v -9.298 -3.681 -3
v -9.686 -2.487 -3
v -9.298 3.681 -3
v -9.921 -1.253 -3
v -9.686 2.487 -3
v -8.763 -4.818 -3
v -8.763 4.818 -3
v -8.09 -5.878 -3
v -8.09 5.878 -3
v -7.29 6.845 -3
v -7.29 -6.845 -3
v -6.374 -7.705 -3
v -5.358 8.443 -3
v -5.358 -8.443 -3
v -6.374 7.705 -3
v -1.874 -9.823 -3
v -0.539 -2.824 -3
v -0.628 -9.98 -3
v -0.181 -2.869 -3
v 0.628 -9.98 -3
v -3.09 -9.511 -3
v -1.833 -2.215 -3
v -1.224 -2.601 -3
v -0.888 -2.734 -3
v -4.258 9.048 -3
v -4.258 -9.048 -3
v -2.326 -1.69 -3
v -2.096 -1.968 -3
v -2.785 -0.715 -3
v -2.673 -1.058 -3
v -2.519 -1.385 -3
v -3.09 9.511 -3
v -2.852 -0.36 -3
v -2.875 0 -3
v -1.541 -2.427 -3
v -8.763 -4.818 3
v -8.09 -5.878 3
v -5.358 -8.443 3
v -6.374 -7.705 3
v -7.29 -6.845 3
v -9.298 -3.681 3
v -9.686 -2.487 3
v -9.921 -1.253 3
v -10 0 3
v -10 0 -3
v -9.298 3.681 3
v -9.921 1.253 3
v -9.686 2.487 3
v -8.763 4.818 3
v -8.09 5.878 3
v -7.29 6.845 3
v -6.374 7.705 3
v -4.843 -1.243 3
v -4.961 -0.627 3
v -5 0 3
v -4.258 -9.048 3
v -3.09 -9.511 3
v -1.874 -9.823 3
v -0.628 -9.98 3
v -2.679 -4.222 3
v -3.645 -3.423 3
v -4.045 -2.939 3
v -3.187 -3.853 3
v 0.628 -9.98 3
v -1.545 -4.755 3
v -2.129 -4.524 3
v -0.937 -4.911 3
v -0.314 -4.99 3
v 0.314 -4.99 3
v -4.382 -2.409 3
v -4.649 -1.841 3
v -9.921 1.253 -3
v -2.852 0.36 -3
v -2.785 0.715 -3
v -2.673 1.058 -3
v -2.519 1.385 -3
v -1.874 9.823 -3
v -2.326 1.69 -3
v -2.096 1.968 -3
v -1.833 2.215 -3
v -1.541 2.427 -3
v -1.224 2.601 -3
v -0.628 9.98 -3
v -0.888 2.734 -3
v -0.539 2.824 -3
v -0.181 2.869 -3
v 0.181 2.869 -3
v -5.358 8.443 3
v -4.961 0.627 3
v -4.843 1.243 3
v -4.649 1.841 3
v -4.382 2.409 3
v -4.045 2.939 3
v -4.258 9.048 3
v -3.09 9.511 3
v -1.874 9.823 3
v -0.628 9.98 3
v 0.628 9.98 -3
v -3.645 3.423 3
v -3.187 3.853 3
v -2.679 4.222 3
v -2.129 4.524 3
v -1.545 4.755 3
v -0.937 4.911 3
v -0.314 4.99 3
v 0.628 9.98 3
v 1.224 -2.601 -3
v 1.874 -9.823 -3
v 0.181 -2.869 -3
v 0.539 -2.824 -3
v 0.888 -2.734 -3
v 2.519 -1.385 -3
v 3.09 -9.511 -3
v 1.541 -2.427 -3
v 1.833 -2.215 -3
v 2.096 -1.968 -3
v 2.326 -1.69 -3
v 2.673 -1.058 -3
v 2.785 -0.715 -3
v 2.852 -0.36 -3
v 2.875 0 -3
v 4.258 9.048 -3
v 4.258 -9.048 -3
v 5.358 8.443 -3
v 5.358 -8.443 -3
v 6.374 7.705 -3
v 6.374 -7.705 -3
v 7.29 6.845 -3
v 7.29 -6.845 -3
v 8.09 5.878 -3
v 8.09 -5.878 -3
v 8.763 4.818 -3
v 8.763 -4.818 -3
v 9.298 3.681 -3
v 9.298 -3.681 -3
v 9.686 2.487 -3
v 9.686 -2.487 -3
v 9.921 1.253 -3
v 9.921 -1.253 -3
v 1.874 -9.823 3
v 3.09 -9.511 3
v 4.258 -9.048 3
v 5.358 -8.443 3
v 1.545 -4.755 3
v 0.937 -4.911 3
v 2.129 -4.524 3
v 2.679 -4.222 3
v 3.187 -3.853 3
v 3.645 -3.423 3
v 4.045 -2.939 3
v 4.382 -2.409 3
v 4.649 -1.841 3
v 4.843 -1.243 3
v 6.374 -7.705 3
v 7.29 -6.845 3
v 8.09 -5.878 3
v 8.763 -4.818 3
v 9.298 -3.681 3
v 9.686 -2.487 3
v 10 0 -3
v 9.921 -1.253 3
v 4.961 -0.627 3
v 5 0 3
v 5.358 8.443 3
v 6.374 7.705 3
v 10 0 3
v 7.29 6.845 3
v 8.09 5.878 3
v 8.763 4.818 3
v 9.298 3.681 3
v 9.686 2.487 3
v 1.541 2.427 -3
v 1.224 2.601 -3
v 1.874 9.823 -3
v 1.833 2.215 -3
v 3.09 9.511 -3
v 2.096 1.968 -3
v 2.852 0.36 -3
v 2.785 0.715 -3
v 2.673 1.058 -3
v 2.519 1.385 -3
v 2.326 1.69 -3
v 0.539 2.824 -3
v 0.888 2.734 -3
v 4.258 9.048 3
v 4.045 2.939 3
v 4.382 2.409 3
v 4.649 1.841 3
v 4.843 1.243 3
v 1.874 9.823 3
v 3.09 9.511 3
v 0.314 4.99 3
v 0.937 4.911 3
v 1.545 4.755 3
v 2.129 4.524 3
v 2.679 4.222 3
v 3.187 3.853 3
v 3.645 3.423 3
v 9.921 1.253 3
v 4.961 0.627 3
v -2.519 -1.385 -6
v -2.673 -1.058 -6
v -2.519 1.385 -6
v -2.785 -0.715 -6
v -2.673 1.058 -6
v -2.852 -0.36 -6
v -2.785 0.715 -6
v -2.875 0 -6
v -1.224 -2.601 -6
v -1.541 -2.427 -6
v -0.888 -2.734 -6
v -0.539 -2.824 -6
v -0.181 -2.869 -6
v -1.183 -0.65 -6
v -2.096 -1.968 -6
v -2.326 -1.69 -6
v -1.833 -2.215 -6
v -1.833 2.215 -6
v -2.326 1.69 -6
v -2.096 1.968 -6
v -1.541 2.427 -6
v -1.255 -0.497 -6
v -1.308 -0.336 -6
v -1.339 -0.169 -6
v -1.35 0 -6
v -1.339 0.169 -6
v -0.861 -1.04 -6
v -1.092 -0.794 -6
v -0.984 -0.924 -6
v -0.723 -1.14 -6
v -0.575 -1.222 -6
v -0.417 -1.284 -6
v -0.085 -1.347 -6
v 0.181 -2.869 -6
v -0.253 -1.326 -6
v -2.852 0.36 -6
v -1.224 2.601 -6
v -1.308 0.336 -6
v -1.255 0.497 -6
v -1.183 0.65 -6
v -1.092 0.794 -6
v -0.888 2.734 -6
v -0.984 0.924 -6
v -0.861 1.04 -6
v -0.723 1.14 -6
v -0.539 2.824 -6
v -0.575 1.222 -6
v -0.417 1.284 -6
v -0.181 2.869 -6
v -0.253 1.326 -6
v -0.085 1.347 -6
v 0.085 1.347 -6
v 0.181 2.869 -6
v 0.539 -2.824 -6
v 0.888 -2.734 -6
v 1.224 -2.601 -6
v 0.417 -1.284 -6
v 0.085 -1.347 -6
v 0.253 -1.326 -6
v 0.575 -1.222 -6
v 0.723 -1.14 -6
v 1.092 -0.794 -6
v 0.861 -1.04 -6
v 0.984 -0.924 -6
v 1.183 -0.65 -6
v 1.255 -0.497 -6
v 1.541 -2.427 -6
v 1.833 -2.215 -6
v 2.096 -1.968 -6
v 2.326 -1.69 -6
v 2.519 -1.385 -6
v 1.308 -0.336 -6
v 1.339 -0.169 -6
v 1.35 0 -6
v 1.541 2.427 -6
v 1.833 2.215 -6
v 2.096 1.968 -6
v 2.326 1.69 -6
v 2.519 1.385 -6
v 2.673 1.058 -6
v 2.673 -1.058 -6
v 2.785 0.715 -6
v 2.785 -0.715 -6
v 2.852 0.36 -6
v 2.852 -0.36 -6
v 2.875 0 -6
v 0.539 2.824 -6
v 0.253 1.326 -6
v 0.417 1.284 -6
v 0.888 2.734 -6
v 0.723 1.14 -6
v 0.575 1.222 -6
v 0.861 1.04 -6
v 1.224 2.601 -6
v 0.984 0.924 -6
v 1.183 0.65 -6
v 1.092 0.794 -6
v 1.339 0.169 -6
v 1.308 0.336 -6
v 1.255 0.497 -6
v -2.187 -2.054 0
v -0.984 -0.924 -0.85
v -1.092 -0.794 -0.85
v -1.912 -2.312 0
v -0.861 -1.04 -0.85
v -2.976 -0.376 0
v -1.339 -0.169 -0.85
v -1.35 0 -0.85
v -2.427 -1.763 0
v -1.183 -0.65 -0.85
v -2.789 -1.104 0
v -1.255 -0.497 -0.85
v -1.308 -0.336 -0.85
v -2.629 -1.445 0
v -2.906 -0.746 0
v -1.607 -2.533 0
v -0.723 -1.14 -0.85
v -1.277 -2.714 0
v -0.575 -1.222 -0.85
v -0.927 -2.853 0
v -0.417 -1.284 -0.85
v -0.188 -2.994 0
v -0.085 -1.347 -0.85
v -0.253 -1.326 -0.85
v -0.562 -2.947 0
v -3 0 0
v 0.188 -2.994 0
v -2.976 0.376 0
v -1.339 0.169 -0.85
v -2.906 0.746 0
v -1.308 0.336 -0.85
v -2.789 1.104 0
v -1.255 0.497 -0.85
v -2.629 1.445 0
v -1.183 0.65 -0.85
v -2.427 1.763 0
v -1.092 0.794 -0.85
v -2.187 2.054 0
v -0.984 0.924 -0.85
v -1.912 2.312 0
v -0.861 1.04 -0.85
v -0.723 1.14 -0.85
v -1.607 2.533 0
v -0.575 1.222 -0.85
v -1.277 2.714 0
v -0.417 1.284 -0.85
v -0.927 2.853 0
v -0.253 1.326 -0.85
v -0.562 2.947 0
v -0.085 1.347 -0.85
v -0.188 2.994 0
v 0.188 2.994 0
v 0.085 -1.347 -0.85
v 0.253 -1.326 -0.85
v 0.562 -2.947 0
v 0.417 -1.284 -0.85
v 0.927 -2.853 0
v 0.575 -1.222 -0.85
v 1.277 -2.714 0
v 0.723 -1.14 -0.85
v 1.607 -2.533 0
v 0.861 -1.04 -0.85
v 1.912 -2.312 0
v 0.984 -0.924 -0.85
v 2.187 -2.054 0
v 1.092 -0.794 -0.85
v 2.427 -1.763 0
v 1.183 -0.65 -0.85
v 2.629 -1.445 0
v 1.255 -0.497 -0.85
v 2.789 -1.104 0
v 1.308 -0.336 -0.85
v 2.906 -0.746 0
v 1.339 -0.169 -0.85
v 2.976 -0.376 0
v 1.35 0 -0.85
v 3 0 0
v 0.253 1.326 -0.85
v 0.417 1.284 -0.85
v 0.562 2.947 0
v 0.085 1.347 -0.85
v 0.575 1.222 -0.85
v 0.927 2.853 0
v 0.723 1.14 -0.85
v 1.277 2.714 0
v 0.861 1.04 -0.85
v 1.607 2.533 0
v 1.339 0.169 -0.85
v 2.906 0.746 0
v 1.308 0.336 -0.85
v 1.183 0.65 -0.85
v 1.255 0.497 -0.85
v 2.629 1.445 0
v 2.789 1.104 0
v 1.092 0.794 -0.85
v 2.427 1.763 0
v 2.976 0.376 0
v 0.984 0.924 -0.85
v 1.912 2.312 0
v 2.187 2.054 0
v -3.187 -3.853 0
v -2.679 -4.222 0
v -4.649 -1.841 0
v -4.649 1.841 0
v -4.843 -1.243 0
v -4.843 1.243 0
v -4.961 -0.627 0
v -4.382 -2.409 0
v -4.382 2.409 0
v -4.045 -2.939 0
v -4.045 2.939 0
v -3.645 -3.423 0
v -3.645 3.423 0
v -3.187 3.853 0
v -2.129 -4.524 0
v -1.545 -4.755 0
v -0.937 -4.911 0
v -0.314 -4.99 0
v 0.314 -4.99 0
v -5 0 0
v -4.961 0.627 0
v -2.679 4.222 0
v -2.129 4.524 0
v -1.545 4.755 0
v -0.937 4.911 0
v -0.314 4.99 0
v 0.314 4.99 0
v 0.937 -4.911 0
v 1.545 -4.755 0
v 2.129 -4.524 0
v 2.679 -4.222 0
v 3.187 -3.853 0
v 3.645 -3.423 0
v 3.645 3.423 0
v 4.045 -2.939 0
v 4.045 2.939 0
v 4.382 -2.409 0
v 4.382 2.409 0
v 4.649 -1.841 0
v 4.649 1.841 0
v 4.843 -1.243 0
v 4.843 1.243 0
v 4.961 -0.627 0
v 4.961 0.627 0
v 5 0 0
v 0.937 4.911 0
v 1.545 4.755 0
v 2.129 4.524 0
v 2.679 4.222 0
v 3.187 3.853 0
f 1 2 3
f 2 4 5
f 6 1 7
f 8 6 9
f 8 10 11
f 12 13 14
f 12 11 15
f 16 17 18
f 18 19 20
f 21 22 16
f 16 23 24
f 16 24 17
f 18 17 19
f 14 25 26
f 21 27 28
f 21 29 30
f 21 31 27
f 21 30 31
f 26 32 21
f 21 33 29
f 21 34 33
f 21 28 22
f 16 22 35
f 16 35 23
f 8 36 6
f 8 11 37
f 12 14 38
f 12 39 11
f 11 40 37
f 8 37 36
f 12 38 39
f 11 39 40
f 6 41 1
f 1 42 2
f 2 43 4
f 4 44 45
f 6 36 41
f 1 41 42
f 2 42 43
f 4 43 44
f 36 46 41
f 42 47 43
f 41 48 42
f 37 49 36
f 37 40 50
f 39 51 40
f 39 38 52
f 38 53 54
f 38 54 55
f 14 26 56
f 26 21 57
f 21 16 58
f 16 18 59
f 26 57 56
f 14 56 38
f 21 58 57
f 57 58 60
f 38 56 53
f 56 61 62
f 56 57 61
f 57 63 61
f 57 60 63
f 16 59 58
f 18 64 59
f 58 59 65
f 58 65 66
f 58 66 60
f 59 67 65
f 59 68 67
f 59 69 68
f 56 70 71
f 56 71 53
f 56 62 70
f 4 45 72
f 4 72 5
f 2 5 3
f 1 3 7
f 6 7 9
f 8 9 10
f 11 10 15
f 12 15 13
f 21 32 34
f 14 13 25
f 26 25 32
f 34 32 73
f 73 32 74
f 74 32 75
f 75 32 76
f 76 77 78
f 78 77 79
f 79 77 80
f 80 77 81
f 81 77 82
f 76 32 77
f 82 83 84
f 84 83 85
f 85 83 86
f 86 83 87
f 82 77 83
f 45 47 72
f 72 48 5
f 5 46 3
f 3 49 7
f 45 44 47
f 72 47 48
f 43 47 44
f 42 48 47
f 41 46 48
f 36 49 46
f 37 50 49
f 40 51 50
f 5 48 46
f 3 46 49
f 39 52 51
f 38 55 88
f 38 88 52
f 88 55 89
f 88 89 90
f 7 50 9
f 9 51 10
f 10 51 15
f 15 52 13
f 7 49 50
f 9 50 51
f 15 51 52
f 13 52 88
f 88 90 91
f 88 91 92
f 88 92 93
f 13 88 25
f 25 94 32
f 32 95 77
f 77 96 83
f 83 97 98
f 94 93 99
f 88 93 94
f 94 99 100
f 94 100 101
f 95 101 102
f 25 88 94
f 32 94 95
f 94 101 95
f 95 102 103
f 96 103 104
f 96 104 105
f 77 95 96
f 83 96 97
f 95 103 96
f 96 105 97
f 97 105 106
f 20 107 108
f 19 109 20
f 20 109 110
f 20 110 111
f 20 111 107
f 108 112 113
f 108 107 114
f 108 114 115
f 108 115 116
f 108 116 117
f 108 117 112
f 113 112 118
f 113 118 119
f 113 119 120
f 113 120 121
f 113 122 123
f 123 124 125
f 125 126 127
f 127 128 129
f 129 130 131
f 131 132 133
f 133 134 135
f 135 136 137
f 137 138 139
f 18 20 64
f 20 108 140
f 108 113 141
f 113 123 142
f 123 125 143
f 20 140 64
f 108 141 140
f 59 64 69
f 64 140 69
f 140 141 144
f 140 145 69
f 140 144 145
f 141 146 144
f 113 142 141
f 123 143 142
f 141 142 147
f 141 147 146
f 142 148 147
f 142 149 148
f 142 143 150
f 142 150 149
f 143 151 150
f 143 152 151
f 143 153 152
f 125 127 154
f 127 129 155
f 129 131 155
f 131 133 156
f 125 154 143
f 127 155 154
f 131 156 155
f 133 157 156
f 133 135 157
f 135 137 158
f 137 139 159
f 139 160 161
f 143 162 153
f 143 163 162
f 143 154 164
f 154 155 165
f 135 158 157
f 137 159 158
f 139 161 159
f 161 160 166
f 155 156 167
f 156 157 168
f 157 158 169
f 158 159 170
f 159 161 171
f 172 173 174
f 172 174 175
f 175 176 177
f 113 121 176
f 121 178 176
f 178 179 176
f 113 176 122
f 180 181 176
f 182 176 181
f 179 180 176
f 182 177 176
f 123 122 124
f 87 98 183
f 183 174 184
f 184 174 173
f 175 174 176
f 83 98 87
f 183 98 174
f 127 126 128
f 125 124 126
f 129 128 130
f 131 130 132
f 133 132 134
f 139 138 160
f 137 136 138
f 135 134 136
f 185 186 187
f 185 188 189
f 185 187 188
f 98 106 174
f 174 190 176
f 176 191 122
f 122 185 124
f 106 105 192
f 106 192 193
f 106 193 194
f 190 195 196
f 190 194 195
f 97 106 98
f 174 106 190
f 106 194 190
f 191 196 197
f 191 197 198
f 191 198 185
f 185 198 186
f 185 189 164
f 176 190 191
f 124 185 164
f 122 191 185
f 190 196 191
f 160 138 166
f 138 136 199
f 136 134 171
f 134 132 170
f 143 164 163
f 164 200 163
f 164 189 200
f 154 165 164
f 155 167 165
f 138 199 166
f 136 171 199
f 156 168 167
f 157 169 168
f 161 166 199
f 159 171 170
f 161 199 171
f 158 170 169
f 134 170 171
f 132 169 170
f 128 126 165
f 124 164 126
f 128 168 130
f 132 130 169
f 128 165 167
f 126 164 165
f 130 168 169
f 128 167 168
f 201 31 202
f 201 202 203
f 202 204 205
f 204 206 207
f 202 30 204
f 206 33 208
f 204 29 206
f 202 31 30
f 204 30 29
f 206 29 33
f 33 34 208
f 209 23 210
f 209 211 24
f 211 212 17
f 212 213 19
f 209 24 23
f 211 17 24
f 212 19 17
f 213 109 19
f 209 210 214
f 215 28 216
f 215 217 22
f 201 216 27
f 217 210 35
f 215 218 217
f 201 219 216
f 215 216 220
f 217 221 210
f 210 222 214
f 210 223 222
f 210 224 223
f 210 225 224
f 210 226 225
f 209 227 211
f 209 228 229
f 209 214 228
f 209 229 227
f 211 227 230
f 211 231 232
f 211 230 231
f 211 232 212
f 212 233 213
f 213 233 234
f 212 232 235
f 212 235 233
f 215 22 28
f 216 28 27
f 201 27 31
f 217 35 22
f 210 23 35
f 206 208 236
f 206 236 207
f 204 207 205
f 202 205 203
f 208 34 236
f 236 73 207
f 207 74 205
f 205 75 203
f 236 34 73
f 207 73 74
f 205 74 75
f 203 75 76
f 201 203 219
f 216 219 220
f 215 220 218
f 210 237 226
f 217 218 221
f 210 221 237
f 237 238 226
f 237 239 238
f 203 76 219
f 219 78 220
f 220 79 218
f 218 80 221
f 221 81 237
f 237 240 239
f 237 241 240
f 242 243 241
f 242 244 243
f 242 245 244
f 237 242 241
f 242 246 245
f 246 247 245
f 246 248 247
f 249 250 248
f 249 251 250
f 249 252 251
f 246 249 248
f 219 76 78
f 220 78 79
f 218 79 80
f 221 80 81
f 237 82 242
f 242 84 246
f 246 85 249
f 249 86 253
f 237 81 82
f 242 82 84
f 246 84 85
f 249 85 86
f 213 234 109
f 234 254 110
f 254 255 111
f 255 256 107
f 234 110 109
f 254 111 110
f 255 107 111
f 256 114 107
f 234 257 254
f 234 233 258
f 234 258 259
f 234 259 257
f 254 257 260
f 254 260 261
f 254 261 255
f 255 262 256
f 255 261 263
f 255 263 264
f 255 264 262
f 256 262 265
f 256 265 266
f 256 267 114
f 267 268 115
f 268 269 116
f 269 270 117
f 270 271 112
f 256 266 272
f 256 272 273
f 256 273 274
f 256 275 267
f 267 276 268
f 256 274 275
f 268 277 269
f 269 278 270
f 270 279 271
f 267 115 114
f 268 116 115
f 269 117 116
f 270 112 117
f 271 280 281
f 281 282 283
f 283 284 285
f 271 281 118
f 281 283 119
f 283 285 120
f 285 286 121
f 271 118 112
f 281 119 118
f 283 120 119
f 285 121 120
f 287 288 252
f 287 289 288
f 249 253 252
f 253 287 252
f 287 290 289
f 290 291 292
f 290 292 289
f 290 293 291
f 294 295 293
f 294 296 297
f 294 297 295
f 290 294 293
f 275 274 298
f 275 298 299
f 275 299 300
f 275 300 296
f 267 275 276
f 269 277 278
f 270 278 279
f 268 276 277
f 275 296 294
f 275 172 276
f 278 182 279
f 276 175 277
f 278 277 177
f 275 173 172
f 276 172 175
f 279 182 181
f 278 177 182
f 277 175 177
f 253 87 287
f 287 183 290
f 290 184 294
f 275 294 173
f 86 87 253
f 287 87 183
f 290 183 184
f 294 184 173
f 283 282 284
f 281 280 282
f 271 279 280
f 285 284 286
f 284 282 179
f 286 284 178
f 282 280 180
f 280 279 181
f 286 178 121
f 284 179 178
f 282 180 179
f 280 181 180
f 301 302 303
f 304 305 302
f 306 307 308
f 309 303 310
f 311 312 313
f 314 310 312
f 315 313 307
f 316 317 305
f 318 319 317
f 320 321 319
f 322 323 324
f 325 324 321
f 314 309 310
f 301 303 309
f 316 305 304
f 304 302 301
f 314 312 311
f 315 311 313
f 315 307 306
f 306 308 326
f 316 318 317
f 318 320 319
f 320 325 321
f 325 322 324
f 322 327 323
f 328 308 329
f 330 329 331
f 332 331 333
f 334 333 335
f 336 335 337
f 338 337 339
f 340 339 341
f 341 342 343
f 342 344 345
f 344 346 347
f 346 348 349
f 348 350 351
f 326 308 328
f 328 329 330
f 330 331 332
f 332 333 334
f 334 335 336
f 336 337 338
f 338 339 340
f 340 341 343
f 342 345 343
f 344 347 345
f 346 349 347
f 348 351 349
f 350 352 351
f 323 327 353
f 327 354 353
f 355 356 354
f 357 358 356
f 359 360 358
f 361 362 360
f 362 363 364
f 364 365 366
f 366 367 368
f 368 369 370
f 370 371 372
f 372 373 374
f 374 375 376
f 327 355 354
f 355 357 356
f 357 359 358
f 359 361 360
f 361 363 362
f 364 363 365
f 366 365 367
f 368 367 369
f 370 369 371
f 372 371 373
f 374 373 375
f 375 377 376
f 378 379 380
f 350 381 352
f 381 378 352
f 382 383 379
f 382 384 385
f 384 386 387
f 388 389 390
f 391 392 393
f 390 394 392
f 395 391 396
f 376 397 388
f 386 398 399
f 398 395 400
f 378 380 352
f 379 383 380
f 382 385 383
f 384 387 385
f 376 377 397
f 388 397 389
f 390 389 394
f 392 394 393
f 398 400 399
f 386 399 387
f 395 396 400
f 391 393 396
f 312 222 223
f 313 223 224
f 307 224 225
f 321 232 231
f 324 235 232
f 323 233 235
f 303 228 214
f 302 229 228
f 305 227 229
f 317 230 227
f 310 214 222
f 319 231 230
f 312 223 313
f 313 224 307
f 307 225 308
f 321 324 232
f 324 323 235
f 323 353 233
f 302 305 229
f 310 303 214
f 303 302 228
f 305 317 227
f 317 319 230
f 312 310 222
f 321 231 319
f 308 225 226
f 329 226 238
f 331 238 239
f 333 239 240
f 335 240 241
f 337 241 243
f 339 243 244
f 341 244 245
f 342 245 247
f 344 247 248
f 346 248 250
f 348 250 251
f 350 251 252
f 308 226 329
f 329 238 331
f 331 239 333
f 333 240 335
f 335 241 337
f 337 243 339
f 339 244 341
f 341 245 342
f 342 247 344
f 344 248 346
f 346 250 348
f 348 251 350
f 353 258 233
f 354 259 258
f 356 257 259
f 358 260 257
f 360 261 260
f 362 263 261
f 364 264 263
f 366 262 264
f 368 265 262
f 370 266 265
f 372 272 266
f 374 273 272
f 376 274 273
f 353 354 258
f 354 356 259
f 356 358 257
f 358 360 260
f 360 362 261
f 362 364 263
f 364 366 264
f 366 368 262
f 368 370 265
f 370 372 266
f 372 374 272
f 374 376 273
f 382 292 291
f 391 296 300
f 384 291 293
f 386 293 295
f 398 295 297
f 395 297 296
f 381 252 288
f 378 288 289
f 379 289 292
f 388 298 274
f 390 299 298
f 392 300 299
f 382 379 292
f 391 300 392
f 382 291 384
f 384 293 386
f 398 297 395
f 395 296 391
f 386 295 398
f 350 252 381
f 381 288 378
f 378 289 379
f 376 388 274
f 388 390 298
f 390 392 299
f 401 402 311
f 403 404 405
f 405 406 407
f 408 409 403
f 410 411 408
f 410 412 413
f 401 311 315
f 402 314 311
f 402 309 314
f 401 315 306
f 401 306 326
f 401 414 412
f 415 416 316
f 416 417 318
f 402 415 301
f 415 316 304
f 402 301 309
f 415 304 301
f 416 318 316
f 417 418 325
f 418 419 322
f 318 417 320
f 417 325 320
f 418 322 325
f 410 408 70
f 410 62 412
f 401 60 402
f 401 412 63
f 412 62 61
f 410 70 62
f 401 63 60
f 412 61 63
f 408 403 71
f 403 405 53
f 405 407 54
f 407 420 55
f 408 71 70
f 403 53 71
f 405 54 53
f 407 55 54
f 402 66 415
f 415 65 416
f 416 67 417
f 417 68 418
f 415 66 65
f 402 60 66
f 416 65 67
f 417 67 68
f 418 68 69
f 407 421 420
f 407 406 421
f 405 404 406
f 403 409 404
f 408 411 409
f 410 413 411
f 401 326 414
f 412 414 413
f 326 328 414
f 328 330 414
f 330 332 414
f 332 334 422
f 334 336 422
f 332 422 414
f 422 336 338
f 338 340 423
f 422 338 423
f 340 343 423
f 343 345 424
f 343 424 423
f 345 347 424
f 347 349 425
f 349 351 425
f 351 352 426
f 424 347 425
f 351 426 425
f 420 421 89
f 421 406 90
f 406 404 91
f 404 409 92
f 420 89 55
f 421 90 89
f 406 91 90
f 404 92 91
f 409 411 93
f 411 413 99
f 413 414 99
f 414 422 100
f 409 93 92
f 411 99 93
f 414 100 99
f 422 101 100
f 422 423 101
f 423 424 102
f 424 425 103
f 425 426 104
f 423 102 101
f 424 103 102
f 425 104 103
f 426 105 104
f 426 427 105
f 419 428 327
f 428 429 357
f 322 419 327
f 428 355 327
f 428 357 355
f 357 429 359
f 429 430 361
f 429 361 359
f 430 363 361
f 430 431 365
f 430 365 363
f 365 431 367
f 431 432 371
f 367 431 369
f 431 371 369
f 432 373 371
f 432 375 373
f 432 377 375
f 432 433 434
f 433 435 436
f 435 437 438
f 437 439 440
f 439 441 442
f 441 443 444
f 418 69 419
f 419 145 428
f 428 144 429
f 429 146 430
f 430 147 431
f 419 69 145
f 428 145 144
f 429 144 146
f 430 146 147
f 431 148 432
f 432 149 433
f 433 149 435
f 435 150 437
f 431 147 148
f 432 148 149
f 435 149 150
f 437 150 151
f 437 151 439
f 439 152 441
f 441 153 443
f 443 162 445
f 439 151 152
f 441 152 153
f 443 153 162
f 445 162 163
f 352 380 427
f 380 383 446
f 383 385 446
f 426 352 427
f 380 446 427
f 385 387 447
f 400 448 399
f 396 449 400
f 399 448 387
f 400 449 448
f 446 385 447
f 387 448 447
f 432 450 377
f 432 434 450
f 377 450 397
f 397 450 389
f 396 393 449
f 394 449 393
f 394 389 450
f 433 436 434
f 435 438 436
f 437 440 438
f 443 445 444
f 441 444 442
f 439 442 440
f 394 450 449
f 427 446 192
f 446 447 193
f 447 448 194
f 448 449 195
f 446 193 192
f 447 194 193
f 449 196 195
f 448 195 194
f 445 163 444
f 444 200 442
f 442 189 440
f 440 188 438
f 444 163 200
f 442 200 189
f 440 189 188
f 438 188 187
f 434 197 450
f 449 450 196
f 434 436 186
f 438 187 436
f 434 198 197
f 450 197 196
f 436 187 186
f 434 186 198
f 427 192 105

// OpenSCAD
$fn = 50;

difference() {
	union() {
		translate(v = [0, 0, -3.0]) {
			cylinder(h = 6, r = 10.0);
		}
		#translate(v = [0, 0, -6.0]) {
			cylinder(h = 6, r = 2.875);
		}
	}
	union() {
		translate(v = [0, 0, 0]) {
			rotate(a = [0, 0, 0]) {
				difference() {
					union() {
						translate(v = [0, 0, -6.0]) {
							cylinder(h = 6, r = 1.0);
						}
						translate(v = [0, 0, -0.85]) {
							cylinder(h = 0.85, r1 = 1.35, r2 = 3.0);
						}
						translate(v = [0, 0, -6.0]) {
							cylinder(h = 6, r = 1.35);
						}
						translate(v = [0, 0, -6.0]) {
							cylinder(h = 6, r = 1.0);
						}
					}
					union();
				}
			}
		}
		#cylinder(h = 3, r = 5.0);
	}
}
